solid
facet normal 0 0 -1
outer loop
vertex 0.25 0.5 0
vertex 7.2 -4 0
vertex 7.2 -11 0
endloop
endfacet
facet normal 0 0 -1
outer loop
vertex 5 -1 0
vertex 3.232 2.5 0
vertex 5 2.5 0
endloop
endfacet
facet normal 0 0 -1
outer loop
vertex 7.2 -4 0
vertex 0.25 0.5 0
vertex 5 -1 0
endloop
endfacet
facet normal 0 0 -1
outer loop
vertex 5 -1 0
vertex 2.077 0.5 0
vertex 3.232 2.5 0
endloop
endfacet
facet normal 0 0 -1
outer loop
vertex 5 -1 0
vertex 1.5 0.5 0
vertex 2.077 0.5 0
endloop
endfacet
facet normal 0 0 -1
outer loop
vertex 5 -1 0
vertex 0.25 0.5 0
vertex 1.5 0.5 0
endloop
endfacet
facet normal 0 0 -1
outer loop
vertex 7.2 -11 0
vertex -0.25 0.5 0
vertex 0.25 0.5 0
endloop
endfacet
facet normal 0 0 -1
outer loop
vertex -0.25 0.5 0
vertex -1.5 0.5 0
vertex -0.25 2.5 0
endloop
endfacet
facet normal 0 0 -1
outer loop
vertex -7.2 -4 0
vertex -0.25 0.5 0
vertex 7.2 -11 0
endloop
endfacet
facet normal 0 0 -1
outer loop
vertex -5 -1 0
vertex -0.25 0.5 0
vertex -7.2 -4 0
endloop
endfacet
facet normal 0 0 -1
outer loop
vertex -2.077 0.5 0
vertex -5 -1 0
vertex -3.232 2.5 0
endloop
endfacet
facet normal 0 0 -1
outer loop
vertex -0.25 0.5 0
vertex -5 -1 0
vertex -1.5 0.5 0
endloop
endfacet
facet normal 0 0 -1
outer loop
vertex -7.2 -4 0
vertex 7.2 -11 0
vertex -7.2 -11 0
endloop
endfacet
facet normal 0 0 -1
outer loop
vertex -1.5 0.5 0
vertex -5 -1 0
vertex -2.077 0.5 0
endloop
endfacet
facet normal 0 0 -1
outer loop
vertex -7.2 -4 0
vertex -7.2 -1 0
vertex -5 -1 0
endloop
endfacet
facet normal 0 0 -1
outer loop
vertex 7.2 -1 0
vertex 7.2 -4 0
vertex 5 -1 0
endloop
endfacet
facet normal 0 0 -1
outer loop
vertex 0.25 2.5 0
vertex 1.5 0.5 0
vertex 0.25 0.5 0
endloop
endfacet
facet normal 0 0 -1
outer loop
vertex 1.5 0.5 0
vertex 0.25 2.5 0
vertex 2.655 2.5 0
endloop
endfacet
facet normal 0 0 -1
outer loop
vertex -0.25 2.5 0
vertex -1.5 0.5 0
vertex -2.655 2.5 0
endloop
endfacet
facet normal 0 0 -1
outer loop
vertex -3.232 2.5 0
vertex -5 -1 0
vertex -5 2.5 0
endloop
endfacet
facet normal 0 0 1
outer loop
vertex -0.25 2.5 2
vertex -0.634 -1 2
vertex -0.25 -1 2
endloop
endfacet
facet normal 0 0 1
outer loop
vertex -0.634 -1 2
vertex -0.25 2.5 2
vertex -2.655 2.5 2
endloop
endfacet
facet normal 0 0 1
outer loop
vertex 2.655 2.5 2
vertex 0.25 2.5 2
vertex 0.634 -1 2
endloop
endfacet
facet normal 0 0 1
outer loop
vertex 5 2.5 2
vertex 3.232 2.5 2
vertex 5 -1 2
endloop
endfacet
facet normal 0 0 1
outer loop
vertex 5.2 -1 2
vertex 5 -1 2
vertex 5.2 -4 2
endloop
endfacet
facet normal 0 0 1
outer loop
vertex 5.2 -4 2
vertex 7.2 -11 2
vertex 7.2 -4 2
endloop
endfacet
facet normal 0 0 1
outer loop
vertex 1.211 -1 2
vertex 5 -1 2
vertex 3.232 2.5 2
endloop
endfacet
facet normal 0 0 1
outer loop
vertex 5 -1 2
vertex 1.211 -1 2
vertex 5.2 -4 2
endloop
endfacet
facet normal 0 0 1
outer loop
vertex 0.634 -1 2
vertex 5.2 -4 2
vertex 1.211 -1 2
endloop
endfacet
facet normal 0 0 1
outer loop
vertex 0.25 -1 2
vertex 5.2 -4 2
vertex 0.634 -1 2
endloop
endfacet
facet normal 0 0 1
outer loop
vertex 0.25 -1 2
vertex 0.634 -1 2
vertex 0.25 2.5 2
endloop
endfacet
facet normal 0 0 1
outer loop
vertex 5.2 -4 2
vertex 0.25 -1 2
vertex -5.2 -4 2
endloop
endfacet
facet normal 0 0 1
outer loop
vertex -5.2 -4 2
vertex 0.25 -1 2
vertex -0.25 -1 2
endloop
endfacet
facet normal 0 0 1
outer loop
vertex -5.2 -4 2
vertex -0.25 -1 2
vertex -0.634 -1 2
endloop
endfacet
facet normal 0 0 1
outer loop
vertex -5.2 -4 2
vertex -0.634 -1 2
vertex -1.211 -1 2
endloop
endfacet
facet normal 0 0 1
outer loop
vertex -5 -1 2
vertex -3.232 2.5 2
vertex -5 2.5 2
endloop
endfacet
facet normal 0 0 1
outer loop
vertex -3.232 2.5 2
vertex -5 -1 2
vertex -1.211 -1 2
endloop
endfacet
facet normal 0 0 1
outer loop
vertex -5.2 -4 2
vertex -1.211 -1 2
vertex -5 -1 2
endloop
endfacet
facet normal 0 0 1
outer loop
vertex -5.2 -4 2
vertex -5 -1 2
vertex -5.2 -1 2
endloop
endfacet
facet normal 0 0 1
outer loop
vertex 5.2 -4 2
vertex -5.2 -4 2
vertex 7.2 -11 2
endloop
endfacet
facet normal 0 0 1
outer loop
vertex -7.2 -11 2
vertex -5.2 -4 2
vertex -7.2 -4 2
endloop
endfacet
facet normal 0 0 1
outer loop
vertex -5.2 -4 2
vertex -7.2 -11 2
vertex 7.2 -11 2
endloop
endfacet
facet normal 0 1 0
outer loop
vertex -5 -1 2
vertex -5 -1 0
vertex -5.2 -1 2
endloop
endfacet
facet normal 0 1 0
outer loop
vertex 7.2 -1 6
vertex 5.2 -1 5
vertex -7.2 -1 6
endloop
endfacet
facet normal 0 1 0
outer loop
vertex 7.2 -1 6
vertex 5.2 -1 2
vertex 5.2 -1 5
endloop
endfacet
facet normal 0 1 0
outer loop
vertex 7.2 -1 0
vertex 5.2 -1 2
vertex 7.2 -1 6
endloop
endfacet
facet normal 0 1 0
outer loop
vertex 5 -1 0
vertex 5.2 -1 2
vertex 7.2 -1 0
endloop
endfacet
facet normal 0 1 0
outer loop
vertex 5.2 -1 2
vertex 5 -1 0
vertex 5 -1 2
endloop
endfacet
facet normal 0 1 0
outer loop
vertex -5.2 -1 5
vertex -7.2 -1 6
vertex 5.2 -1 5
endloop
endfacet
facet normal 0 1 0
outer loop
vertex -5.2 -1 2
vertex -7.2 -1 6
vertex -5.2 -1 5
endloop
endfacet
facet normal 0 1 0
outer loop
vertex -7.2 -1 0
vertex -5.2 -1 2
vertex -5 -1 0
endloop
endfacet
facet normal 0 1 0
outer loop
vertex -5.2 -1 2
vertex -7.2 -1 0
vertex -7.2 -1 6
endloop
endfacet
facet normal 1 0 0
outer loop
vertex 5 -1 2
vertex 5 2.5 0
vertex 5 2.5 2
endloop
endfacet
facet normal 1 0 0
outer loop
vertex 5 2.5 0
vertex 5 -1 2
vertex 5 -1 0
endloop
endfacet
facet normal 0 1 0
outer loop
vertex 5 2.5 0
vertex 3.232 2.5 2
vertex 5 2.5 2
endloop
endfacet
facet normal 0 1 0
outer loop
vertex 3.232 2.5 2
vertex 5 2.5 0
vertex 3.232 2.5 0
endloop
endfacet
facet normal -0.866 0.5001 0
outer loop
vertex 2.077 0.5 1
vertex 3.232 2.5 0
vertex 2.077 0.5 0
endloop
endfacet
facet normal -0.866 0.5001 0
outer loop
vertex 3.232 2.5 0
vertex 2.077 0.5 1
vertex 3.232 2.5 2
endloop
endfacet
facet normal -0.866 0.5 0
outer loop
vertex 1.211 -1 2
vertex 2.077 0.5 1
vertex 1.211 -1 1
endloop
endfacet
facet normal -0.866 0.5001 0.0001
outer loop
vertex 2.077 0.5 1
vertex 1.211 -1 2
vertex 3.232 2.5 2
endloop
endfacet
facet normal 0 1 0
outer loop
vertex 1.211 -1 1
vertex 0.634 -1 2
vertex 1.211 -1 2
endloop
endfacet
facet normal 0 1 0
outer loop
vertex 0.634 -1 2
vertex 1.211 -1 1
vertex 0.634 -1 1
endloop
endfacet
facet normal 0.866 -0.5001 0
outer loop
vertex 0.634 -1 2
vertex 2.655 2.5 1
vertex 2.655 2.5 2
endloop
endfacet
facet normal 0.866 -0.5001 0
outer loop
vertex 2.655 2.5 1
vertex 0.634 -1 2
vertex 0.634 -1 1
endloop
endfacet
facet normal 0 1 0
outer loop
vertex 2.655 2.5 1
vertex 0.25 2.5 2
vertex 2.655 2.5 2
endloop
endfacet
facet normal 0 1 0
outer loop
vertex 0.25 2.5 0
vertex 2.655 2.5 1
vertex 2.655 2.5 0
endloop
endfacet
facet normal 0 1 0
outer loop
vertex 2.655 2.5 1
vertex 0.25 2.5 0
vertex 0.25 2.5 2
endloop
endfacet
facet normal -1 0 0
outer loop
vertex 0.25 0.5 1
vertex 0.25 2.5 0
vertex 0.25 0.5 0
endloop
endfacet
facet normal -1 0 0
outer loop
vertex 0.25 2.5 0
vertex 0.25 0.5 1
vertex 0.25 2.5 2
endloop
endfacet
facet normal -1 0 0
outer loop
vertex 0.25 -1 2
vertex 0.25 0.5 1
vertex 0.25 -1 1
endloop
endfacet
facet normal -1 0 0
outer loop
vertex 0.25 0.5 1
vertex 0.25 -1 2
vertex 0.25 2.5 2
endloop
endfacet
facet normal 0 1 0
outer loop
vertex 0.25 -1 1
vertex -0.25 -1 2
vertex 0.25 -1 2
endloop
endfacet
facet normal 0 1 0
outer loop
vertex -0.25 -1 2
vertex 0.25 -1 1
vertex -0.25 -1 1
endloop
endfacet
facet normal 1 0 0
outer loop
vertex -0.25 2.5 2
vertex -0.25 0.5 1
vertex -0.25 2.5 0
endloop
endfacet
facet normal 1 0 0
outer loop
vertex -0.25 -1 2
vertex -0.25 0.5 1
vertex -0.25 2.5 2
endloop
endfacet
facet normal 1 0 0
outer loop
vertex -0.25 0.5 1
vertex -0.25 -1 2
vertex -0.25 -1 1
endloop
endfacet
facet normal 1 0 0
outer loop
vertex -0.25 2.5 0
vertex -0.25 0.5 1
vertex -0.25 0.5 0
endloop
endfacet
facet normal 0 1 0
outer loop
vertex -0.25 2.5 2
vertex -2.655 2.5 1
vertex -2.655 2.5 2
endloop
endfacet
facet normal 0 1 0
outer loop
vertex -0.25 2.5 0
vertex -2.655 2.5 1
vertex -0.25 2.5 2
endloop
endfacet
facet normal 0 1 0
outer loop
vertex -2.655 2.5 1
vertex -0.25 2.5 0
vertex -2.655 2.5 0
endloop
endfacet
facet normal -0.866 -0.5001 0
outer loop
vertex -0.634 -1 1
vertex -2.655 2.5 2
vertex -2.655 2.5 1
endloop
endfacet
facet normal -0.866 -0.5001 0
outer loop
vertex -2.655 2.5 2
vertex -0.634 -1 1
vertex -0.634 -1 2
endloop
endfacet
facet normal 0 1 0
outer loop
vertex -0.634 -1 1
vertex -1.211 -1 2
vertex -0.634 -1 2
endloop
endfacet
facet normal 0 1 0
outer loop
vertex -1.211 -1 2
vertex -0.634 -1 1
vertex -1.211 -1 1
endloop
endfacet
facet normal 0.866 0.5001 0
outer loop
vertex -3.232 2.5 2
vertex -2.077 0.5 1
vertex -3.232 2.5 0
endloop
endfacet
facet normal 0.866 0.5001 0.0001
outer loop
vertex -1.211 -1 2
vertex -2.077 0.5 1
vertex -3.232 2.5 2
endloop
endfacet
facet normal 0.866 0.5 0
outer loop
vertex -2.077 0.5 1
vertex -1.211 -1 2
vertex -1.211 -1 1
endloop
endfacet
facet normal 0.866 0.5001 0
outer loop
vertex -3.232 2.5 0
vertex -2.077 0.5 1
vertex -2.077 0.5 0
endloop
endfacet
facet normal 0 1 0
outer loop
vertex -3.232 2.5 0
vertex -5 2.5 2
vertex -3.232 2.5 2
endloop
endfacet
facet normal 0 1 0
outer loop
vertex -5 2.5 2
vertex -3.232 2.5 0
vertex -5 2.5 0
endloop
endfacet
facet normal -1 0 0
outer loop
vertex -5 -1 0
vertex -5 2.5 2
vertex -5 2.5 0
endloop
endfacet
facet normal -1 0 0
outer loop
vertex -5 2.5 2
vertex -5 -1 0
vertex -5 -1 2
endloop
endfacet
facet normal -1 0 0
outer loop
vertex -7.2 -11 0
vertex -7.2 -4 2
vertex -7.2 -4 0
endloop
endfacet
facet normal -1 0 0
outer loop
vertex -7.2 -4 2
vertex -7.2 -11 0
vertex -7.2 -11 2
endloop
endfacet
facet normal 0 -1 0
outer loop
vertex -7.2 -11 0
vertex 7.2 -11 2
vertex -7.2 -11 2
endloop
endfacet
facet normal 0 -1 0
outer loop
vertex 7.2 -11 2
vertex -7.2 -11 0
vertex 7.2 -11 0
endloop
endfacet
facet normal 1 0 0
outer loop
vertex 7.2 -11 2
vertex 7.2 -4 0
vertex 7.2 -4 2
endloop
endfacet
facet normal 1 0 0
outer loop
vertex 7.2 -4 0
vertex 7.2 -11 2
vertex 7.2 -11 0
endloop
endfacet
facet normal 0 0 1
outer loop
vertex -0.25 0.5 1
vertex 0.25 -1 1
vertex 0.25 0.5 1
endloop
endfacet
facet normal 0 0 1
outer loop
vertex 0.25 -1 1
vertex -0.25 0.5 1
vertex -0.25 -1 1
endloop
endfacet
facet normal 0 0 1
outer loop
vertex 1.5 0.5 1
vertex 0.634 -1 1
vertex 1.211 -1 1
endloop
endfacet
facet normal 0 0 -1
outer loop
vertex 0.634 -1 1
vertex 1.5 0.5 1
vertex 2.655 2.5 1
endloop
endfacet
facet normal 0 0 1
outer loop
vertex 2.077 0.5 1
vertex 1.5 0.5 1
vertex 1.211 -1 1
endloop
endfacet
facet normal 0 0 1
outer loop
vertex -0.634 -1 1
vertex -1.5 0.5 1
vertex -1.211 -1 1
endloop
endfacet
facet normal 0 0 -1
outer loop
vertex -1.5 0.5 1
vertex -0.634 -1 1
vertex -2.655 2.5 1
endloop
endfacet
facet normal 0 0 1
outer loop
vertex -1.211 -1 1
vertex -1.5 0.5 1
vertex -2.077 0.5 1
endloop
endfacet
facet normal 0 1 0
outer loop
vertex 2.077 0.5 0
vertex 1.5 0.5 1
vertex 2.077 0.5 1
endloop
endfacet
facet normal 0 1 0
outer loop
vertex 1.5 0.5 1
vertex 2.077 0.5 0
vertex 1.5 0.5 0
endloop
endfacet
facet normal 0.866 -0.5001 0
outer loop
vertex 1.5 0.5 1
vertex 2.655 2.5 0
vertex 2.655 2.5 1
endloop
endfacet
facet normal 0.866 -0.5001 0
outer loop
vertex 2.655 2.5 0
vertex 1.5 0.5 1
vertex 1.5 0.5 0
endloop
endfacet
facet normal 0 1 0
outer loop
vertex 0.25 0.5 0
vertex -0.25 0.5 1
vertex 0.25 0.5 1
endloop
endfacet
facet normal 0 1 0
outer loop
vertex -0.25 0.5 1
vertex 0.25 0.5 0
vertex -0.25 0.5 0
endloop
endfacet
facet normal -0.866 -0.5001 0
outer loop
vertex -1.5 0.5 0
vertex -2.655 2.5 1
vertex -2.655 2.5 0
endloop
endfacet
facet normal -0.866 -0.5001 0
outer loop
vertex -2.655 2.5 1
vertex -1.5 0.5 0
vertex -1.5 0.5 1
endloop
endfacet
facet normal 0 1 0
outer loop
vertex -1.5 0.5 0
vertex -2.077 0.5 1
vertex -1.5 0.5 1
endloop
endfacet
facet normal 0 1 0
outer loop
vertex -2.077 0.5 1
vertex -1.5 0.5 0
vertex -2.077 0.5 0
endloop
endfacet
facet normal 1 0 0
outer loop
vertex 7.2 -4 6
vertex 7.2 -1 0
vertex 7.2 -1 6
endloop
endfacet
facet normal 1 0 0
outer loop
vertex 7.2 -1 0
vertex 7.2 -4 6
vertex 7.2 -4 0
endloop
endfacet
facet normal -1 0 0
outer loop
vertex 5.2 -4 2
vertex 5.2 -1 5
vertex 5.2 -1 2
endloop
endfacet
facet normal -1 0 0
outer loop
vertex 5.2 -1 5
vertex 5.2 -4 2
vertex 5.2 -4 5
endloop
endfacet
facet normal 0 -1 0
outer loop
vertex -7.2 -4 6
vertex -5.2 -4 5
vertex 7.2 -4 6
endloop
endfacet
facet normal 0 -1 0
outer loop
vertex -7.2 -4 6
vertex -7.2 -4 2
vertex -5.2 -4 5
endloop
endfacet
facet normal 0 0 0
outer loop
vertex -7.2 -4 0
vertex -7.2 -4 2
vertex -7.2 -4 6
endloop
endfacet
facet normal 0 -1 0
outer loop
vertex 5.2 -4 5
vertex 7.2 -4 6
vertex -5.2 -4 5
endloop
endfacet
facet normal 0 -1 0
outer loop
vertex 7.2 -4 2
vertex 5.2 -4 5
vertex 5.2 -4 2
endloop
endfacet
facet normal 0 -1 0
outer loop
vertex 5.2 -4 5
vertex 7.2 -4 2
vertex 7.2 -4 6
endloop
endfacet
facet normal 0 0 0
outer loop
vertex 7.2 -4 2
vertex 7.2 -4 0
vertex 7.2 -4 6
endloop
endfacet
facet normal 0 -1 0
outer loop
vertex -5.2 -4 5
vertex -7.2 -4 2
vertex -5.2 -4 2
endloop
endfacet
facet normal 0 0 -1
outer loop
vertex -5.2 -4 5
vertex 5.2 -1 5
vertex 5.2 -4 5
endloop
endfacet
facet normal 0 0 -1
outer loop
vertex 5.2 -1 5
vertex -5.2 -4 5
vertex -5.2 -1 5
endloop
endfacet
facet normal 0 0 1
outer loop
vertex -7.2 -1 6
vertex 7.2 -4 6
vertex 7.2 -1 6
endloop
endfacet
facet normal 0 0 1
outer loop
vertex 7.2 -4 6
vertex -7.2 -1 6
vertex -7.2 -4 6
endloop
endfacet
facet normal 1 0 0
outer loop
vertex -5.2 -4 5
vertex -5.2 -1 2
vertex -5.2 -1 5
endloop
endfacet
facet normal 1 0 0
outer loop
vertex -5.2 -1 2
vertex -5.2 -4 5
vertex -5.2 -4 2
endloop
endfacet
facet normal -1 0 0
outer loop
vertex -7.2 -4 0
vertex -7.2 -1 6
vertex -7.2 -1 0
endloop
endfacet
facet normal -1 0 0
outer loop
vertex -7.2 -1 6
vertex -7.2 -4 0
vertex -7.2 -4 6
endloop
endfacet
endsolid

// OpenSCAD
module wiring_channels()
{
	difference()
	{
		square([10, 5], center = true);
		
		square([0.5, 5], center = true);
		translate([1.5, 0])
			rotate(-30)
			square([0.5, 8], center = true);
		translate([-1.5, 0])
			rotate(30)
			square([0.5, 8], center = true);
	}
}

linear_extrude(2)
{
	translate([0, -10 + 4]) square([14 + 0.4, 10], center = true);

	wiring_channels();
}

linear_extrude(1)
{
	translate([0, -10 + 5.5]) square([10, 10], center = true);

	wiring_channels();
}

linear_extrude(2.5 + 3)
	translate([10 / 2 + 1.2, -2.5])
	square([2, 3], center = true);
translate([0, 0, 2 + 3])
	linear_extrude(1)
	translate([10 / 2 + 0.7, -2.5])
	square([3, 3], center = true);

linear_extrude(2.5 + 3)
	translate([-(10 / 2 + 1.2), -2.5])
	square([2, 3], center = true);
translate([0, 0, 2 + 3])
	linear_extrude(1)
	translate([-(10 / 2 + 0.7), -2.5])
	square([3, 3], center = true);

translate([0, 0, 2 + 3])
	linear_extrude(1)
	translate([0, -2.5])
	square([14 + 0.4, 3], center = true);
